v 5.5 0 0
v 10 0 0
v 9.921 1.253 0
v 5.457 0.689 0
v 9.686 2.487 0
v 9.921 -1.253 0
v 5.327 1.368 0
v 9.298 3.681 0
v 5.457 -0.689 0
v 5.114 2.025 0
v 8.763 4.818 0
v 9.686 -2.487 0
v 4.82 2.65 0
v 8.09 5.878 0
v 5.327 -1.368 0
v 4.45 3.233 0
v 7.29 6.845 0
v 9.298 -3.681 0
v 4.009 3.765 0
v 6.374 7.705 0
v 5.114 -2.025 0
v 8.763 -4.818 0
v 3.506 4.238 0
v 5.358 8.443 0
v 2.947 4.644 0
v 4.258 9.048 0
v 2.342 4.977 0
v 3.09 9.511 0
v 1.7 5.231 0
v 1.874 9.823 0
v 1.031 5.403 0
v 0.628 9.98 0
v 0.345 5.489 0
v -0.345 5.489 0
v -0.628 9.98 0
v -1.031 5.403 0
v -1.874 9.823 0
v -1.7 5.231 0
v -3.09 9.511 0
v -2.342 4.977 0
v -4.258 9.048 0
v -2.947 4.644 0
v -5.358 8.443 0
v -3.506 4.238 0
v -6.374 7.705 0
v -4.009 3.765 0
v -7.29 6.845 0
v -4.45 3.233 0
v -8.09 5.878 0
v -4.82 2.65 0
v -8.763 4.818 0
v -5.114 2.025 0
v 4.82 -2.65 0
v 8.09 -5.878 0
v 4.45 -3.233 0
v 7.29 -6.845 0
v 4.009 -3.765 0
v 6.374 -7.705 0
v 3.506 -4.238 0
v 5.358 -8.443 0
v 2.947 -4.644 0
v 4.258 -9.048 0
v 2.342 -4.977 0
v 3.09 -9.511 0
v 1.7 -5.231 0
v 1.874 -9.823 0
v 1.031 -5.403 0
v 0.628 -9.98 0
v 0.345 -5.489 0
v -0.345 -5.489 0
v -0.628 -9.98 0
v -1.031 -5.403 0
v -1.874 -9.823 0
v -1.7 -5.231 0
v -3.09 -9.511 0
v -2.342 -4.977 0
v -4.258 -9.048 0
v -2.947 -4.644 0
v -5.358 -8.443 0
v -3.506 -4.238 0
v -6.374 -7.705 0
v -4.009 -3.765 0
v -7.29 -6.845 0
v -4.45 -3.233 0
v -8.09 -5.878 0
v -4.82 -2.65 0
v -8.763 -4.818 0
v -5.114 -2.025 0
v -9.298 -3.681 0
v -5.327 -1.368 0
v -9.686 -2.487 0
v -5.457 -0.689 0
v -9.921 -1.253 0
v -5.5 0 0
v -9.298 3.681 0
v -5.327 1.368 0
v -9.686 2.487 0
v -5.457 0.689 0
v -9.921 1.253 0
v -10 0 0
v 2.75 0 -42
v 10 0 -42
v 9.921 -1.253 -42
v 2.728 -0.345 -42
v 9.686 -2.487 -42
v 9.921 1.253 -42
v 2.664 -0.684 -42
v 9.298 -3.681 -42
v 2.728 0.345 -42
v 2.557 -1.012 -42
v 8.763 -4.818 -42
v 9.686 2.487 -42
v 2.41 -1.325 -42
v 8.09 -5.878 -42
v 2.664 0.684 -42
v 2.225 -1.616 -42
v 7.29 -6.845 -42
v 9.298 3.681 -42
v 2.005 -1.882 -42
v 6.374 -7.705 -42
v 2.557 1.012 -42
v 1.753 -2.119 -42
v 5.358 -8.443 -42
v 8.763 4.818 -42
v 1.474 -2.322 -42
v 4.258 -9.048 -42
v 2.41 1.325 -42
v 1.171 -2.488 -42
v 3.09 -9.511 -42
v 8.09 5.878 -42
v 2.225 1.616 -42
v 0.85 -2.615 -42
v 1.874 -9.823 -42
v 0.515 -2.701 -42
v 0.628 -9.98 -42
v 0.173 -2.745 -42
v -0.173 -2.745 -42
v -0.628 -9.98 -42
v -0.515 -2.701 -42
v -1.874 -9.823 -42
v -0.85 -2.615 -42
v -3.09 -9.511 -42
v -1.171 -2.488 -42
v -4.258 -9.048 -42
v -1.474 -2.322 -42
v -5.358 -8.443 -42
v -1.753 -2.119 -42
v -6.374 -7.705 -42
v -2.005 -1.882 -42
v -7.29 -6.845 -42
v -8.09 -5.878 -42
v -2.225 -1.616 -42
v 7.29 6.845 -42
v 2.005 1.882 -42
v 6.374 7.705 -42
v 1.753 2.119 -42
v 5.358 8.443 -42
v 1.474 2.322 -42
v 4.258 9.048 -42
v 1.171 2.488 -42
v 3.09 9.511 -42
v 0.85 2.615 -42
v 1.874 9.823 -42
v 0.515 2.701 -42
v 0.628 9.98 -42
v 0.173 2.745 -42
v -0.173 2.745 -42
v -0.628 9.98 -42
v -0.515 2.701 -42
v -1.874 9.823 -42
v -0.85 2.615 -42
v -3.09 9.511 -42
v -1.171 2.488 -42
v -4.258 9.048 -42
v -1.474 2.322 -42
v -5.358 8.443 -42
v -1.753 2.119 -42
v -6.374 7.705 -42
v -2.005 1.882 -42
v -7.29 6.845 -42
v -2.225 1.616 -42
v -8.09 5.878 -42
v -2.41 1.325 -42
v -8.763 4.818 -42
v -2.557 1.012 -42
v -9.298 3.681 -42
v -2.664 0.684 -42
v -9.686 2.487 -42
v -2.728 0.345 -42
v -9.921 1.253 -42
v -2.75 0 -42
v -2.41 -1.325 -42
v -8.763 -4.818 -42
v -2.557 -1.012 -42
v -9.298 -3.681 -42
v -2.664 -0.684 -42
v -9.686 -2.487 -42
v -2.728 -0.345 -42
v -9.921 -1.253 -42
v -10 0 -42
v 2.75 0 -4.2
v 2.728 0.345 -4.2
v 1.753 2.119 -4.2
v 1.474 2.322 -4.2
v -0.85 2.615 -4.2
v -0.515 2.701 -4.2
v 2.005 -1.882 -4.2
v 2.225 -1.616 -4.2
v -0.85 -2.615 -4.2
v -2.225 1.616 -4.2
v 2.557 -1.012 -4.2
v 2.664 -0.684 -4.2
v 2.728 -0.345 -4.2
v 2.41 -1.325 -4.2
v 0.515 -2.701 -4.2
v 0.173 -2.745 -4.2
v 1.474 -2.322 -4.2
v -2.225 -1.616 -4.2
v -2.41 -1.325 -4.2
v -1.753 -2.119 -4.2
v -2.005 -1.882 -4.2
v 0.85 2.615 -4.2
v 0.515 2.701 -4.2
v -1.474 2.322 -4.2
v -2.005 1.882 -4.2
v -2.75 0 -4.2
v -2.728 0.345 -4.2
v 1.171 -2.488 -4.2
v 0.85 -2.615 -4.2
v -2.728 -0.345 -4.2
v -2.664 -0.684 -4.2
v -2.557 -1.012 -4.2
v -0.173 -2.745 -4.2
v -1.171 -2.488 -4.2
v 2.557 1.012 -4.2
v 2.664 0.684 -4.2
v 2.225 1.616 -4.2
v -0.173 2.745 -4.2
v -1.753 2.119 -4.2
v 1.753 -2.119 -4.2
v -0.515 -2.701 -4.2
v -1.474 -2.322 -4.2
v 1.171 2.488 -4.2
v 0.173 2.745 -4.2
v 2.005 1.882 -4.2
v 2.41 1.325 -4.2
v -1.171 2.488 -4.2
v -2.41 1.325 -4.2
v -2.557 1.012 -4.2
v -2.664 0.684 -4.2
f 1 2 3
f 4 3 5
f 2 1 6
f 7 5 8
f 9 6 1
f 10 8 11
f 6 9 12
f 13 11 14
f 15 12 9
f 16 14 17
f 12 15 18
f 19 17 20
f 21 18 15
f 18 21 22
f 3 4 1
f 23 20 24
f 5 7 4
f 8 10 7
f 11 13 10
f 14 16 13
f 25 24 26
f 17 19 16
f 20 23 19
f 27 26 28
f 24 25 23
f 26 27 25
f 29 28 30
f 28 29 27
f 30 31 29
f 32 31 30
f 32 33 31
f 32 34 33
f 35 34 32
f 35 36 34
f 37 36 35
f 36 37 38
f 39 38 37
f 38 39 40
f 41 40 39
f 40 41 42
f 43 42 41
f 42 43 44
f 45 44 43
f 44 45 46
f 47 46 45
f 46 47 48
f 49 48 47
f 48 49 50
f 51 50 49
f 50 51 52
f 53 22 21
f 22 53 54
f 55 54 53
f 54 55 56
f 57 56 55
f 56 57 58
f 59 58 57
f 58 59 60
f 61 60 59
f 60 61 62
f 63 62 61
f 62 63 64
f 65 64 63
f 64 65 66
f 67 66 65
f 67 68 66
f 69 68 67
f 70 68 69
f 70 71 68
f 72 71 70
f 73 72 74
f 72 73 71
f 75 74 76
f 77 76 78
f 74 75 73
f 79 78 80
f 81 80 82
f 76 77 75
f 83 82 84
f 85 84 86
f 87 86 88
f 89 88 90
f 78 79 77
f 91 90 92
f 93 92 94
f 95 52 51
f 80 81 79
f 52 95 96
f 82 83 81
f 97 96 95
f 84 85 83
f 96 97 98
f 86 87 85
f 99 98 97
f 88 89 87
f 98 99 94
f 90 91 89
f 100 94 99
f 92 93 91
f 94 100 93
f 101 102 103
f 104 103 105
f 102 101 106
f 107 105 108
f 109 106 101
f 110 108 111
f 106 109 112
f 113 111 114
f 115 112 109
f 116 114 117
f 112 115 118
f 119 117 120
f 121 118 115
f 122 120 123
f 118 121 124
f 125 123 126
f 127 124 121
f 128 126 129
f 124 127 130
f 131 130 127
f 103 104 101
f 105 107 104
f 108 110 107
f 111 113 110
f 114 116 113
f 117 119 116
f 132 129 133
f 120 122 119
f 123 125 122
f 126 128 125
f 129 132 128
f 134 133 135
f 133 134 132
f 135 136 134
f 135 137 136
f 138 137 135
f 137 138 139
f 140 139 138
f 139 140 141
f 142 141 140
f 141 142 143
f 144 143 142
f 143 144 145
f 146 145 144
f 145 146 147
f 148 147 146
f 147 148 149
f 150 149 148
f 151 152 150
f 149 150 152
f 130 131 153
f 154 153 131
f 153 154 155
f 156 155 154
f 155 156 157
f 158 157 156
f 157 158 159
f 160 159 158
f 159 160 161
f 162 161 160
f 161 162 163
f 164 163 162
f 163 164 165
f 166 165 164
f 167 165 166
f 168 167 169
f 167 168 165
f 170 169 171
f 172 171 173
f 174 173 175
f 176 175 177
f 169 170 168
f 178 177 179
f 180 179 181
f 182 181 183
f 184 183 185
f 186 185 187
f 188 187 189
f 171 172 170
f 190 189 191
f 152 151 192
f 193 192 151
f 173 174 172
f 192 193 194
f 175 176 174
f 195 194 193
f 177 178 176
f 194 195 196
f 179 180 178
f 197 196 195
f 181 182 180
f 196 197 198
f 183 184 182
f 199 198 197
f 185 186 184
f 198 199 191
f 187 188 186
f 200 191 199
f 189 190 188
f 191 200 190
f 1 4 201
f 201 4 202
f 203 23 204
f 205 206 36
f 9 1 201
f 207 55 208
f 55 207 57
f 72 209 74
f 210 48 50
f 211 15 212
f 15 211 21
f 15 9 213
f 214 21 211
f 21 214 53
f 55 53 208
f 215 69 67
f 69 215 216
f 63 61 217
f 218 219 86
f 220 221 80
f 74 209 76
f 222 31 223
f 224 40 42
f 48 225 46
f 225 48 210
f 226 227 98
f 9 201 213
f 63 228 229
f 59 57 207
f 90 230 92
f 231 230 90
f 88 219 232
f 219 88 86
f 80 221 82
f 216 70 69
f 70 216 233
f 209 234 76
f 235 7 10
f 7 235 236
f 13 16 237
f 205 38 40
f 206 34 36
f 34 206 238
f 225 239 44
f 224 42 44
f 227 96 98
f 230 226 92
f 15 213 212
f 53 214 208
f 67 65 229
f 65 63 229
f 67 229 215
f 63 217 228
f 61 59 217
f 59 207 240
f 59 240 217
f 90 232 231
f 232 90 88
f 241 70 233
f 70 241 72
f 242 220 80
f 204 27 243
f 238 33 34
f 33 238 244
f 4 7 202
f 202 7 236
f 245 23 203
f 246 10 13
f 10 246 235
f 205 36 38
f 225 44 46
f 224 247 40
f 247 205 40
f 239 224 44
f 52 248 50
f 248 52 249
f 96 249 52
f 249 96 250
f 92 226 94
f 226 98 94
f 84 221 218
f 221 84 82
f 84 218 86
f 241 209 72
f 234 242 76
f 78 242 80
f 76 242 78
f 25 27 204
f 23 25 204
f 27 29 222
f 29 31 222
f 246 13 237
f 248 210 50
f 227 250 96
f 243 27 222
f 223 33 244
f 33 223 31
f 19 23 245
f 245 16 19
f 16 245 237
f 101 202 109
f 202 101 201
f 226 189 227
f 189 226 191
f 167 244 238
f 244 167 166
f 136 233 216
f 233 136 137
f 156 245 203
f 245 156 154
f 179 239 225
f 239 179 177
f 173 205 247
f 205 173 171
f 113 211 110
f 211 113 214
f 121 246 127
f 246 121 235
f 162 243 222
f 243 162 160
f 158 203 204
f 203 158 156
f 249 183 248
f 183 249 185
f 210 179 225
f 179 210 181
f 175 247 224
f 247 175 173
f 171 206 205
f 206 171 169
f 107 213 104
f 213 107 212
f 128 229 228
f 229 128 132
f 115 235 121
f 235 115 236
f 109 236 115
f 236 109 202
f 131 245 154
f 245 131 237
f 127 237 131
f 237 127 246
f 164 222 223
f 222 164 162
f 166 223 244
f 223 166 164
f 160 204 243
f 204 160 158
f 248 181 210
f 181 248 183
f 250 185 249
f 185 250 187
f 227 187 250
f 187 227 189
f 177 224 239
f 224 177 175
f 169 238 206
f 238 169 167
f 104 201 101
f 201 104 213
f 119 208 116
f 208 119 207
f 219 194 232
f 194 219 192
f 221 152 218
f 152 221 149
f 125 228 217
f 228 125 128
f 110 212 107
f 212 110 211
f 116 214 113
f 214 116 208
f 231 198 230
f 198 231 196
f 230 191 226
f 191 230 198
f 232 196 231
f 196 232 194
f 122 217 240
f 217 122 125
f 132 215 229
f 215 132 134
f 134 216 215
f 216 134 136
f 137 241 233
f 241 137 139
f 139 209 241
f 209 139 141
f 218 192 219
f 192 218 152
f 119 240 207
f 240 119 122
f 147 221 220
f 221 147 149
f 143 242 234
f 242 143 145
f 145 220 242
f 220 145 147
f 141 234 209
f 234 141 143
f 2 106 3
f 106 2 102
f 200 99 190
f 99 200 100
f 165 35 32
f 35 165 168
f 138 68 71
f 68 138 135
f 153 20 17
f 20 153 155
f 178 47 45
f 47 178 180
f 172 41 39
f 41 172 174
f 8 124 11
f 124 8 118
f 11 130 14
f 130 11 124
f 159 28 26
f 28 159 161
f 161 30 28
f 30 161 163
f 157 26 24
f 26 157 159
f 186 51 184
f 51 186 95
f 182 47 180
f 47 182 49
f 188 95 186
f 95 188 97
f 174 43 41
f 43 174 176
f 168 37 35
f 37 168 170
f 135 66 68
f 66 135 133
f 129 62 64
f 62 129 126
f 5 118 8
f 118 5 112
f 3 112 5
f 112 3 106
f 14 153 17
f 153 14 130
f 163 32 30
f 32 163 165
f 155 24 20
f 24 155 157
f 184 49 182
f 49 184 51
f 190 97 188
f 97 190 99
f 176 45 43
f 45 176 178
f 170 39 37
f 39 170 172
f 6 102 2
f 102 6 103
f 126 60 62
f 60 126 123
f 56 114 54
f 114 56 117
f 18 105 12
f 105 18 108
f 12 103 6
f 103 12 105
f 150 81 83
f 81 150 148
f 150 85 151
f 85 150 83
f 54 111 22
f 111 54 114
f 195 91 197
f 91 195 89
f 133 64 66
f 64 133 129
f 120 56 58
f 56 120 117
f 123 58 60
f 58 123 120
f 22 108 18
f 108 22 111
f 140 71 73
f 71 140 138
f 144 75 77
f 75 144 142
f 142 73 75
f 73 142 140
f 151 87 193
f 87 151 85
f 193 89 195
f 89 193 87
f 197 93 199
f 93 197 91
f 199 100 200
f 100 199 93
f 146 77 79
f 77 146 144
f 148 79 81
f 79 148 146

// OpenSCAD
$fn = 50;


difference() {
	union() {
		translate(v = [0, 0, -42.0000000000]) {
			cylinder(h = 42, r = 10.0000000000);
		}
		cylinder(h = 0, r = 20.0000000000);
	}
	union() {
		translate(v = [0, 0, 0]) {
			rotate(a = [0, 0, 0]) {
				difference() {
					union() {
						#translate(v = [0, 0, -42.0000000000]) {
							cylinder(h = 42, r = 2.2500000000);
						}
						#translate(v = [0, 0, -4.2000000000]) {
							cylinder(h = 4.2000000000, r = 10.0000000000, r1 = 2.7500000000, r2 = 5.5000000000);
						}
						#translate(v = [0, 0, -42.0000000000]) {
							cylinder(h = 42, r = 2.7500000000);
						}
						#translate(v = [0, 0, -42.0000000000]) {
							cylinder(h = 42, r = 2.2500000000);
						}
					}
					union();
				}
			}
		}
	}
}
